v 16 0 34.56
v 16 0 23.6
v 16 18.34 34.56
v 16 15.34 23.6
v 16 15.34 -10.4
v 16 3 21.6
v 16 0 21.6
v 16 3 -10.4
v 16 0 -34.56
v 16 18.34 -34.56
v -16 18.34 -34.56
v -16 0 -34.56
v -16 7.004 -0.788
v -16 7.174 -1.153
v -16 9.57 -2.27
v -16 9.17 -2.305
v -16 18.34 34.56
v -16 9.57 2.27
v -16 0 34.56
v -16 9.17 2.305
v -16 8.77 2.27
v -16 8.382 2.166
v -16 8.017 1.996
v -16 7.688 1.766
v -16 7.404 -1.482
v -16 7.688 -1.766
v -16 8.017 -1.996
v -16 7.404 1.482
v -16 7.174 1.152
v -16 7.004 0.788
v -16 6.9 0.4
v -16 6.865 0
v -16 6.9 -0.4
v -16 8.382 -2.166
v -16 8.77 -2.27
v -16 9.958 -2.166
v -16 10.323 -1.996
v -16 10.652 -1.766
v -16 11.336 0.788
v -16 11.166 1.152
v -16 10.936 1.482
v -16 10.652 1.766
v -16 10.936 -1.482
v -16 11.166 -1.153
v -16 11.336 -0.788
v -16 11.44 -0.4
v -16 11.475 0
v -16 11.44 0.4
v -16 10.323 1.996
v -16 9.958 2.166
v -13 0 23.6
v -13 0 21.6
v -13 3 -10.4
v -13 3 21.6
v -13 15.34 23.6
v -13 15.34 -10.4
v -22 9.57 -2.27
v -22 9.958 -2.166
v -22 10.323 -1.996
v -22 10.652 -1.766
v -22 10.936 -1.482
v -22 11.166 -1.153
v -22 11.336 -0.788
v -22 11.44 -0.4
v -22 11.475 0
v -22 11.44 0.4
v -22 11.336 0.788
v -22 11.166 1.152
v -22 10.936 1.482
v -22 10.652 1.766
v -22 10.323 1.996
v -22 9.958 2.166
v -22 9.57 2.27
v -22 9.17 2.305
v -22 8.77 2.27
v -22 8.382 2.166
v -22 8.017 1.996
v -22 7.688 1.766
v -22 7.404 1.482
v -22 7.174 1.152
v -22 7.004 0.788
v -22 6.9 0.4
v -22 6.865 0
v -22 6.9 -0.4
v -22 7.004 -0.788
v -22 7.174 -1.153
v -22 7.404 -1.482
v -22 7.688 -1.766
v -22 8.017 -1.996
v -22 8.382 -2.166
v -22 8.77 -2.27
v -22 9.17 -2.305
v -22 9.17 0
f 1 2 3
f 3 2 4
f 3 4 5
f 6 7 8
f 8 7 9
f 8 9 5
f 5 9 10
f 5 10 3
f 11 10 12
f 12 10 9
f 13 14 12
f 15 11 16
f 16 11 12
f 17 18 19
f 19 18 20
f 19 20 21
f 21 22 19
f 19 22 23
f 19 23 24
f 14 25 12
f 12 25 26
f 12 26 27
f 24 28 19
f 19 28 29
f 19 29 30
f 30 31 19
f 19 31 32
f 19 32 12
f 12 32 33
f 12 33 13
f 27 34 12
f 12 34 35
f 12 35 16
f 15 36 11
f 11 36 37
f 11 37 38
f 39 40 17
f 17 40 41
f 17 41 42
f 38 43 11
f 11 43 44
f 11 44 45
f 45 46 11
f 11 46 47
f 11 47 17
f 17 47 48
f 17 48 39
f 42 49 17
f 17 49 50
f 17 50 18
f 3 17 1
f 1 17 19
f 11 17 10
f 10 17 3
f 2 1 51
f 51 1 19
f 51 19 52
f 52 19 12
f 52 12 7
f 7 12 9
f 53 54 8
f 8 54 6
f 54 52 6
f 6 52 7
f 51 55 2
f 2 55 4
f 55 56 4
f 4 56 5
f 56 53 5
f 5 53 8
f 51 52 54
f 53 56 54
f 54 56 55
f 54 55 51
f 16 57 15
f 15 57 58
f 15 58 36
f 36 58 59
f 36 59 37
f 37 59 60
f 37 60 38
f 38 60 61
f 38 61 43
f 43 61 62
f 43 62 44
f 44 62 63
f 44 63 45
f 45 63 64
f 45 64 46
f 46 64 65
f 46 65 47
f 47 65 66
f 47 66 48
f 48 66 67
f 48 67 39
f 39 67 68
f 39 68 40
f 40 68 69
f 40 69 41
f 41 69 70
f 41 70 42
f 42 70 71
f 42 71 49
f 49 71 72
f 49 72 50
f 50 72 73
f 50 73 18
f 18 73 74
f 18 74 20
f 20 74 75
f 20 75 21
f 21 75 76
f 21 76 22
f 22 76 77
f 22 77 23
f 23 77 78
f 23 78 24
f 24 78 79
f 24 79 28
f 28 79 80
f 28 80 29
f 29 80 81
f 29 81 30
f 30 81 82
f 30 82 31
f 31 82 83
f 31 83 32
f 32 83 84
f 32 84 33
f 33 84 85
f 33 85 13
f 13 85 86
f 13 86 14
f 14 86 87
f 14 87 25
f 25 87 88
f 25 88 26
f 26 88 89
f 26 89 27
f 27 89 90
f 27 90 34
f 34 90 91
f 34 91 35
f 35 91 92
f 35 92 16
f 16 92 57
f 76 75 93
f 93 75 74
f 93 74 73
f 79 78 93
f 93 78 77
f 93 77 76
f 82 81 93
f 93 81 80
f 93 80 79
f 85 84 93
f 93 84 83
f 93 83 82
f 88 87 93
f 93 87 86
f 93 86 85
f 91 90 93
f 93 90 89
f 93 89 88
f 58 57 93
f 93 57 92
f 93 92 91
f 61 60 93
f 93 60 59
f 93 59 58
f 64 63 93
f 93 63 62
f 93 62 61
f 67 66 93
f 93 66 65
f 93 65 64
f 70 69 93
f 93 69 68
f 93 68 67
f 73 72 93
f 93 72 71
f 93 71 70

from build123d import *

# Parameters (mm, degrees)
SKETCH2_W           = 32
SKETCH2_H           = 69.12
BOSS_EXTRUDE1_DEPTH = 18.34
CUT_EXTRUDE1_DEPTH  = 29
SKETCH4_R           = 2.305
BOSS_EXTRUDE3_DEPTH = 6


with BuildPart() as part:
    # Sketch2 → Boss-Extrude1 (new body)
    with BuildSketch(Plane(origin=(0, 0, 0), x_dir=(1, 0, 0), z_dir=(0, 1, 0))):
        Rectangle(SKETCH2_W, SKETCH2_H)
    extrude(amount=BOSS_EXTRUDE1_DEPTH)

    # Sketch3 → Cut-Extrude1 (cut)
    with BuildSketch(Plane(origin=(16, 0, 0), x_dir=(0, 0, -1), z_dir=(1, 0, 0))):
        Polygon((-23.6, 15.34), (10.4, 15.34), (10.4, 3), (-21.6, 3), (-21.6, 0), (-23.6, 0), (-23.6, 3), align=None)
    extrude(amount=-CUT_EXTRUDE1_DEPTH, mode=Mode.SUBTRACT)

    # Sketch4 → Boss-Extrude3 (add)
    with BuildSketch(Plane.ZY.offset(16)):
        with Locations(Location((0, 9.17, 0), (0, 0, 180))):
            Circle(SKETCH4_R)
    extrude(amount=BOSS_EXTRUDE3_DEPTH)


solid = part.part
